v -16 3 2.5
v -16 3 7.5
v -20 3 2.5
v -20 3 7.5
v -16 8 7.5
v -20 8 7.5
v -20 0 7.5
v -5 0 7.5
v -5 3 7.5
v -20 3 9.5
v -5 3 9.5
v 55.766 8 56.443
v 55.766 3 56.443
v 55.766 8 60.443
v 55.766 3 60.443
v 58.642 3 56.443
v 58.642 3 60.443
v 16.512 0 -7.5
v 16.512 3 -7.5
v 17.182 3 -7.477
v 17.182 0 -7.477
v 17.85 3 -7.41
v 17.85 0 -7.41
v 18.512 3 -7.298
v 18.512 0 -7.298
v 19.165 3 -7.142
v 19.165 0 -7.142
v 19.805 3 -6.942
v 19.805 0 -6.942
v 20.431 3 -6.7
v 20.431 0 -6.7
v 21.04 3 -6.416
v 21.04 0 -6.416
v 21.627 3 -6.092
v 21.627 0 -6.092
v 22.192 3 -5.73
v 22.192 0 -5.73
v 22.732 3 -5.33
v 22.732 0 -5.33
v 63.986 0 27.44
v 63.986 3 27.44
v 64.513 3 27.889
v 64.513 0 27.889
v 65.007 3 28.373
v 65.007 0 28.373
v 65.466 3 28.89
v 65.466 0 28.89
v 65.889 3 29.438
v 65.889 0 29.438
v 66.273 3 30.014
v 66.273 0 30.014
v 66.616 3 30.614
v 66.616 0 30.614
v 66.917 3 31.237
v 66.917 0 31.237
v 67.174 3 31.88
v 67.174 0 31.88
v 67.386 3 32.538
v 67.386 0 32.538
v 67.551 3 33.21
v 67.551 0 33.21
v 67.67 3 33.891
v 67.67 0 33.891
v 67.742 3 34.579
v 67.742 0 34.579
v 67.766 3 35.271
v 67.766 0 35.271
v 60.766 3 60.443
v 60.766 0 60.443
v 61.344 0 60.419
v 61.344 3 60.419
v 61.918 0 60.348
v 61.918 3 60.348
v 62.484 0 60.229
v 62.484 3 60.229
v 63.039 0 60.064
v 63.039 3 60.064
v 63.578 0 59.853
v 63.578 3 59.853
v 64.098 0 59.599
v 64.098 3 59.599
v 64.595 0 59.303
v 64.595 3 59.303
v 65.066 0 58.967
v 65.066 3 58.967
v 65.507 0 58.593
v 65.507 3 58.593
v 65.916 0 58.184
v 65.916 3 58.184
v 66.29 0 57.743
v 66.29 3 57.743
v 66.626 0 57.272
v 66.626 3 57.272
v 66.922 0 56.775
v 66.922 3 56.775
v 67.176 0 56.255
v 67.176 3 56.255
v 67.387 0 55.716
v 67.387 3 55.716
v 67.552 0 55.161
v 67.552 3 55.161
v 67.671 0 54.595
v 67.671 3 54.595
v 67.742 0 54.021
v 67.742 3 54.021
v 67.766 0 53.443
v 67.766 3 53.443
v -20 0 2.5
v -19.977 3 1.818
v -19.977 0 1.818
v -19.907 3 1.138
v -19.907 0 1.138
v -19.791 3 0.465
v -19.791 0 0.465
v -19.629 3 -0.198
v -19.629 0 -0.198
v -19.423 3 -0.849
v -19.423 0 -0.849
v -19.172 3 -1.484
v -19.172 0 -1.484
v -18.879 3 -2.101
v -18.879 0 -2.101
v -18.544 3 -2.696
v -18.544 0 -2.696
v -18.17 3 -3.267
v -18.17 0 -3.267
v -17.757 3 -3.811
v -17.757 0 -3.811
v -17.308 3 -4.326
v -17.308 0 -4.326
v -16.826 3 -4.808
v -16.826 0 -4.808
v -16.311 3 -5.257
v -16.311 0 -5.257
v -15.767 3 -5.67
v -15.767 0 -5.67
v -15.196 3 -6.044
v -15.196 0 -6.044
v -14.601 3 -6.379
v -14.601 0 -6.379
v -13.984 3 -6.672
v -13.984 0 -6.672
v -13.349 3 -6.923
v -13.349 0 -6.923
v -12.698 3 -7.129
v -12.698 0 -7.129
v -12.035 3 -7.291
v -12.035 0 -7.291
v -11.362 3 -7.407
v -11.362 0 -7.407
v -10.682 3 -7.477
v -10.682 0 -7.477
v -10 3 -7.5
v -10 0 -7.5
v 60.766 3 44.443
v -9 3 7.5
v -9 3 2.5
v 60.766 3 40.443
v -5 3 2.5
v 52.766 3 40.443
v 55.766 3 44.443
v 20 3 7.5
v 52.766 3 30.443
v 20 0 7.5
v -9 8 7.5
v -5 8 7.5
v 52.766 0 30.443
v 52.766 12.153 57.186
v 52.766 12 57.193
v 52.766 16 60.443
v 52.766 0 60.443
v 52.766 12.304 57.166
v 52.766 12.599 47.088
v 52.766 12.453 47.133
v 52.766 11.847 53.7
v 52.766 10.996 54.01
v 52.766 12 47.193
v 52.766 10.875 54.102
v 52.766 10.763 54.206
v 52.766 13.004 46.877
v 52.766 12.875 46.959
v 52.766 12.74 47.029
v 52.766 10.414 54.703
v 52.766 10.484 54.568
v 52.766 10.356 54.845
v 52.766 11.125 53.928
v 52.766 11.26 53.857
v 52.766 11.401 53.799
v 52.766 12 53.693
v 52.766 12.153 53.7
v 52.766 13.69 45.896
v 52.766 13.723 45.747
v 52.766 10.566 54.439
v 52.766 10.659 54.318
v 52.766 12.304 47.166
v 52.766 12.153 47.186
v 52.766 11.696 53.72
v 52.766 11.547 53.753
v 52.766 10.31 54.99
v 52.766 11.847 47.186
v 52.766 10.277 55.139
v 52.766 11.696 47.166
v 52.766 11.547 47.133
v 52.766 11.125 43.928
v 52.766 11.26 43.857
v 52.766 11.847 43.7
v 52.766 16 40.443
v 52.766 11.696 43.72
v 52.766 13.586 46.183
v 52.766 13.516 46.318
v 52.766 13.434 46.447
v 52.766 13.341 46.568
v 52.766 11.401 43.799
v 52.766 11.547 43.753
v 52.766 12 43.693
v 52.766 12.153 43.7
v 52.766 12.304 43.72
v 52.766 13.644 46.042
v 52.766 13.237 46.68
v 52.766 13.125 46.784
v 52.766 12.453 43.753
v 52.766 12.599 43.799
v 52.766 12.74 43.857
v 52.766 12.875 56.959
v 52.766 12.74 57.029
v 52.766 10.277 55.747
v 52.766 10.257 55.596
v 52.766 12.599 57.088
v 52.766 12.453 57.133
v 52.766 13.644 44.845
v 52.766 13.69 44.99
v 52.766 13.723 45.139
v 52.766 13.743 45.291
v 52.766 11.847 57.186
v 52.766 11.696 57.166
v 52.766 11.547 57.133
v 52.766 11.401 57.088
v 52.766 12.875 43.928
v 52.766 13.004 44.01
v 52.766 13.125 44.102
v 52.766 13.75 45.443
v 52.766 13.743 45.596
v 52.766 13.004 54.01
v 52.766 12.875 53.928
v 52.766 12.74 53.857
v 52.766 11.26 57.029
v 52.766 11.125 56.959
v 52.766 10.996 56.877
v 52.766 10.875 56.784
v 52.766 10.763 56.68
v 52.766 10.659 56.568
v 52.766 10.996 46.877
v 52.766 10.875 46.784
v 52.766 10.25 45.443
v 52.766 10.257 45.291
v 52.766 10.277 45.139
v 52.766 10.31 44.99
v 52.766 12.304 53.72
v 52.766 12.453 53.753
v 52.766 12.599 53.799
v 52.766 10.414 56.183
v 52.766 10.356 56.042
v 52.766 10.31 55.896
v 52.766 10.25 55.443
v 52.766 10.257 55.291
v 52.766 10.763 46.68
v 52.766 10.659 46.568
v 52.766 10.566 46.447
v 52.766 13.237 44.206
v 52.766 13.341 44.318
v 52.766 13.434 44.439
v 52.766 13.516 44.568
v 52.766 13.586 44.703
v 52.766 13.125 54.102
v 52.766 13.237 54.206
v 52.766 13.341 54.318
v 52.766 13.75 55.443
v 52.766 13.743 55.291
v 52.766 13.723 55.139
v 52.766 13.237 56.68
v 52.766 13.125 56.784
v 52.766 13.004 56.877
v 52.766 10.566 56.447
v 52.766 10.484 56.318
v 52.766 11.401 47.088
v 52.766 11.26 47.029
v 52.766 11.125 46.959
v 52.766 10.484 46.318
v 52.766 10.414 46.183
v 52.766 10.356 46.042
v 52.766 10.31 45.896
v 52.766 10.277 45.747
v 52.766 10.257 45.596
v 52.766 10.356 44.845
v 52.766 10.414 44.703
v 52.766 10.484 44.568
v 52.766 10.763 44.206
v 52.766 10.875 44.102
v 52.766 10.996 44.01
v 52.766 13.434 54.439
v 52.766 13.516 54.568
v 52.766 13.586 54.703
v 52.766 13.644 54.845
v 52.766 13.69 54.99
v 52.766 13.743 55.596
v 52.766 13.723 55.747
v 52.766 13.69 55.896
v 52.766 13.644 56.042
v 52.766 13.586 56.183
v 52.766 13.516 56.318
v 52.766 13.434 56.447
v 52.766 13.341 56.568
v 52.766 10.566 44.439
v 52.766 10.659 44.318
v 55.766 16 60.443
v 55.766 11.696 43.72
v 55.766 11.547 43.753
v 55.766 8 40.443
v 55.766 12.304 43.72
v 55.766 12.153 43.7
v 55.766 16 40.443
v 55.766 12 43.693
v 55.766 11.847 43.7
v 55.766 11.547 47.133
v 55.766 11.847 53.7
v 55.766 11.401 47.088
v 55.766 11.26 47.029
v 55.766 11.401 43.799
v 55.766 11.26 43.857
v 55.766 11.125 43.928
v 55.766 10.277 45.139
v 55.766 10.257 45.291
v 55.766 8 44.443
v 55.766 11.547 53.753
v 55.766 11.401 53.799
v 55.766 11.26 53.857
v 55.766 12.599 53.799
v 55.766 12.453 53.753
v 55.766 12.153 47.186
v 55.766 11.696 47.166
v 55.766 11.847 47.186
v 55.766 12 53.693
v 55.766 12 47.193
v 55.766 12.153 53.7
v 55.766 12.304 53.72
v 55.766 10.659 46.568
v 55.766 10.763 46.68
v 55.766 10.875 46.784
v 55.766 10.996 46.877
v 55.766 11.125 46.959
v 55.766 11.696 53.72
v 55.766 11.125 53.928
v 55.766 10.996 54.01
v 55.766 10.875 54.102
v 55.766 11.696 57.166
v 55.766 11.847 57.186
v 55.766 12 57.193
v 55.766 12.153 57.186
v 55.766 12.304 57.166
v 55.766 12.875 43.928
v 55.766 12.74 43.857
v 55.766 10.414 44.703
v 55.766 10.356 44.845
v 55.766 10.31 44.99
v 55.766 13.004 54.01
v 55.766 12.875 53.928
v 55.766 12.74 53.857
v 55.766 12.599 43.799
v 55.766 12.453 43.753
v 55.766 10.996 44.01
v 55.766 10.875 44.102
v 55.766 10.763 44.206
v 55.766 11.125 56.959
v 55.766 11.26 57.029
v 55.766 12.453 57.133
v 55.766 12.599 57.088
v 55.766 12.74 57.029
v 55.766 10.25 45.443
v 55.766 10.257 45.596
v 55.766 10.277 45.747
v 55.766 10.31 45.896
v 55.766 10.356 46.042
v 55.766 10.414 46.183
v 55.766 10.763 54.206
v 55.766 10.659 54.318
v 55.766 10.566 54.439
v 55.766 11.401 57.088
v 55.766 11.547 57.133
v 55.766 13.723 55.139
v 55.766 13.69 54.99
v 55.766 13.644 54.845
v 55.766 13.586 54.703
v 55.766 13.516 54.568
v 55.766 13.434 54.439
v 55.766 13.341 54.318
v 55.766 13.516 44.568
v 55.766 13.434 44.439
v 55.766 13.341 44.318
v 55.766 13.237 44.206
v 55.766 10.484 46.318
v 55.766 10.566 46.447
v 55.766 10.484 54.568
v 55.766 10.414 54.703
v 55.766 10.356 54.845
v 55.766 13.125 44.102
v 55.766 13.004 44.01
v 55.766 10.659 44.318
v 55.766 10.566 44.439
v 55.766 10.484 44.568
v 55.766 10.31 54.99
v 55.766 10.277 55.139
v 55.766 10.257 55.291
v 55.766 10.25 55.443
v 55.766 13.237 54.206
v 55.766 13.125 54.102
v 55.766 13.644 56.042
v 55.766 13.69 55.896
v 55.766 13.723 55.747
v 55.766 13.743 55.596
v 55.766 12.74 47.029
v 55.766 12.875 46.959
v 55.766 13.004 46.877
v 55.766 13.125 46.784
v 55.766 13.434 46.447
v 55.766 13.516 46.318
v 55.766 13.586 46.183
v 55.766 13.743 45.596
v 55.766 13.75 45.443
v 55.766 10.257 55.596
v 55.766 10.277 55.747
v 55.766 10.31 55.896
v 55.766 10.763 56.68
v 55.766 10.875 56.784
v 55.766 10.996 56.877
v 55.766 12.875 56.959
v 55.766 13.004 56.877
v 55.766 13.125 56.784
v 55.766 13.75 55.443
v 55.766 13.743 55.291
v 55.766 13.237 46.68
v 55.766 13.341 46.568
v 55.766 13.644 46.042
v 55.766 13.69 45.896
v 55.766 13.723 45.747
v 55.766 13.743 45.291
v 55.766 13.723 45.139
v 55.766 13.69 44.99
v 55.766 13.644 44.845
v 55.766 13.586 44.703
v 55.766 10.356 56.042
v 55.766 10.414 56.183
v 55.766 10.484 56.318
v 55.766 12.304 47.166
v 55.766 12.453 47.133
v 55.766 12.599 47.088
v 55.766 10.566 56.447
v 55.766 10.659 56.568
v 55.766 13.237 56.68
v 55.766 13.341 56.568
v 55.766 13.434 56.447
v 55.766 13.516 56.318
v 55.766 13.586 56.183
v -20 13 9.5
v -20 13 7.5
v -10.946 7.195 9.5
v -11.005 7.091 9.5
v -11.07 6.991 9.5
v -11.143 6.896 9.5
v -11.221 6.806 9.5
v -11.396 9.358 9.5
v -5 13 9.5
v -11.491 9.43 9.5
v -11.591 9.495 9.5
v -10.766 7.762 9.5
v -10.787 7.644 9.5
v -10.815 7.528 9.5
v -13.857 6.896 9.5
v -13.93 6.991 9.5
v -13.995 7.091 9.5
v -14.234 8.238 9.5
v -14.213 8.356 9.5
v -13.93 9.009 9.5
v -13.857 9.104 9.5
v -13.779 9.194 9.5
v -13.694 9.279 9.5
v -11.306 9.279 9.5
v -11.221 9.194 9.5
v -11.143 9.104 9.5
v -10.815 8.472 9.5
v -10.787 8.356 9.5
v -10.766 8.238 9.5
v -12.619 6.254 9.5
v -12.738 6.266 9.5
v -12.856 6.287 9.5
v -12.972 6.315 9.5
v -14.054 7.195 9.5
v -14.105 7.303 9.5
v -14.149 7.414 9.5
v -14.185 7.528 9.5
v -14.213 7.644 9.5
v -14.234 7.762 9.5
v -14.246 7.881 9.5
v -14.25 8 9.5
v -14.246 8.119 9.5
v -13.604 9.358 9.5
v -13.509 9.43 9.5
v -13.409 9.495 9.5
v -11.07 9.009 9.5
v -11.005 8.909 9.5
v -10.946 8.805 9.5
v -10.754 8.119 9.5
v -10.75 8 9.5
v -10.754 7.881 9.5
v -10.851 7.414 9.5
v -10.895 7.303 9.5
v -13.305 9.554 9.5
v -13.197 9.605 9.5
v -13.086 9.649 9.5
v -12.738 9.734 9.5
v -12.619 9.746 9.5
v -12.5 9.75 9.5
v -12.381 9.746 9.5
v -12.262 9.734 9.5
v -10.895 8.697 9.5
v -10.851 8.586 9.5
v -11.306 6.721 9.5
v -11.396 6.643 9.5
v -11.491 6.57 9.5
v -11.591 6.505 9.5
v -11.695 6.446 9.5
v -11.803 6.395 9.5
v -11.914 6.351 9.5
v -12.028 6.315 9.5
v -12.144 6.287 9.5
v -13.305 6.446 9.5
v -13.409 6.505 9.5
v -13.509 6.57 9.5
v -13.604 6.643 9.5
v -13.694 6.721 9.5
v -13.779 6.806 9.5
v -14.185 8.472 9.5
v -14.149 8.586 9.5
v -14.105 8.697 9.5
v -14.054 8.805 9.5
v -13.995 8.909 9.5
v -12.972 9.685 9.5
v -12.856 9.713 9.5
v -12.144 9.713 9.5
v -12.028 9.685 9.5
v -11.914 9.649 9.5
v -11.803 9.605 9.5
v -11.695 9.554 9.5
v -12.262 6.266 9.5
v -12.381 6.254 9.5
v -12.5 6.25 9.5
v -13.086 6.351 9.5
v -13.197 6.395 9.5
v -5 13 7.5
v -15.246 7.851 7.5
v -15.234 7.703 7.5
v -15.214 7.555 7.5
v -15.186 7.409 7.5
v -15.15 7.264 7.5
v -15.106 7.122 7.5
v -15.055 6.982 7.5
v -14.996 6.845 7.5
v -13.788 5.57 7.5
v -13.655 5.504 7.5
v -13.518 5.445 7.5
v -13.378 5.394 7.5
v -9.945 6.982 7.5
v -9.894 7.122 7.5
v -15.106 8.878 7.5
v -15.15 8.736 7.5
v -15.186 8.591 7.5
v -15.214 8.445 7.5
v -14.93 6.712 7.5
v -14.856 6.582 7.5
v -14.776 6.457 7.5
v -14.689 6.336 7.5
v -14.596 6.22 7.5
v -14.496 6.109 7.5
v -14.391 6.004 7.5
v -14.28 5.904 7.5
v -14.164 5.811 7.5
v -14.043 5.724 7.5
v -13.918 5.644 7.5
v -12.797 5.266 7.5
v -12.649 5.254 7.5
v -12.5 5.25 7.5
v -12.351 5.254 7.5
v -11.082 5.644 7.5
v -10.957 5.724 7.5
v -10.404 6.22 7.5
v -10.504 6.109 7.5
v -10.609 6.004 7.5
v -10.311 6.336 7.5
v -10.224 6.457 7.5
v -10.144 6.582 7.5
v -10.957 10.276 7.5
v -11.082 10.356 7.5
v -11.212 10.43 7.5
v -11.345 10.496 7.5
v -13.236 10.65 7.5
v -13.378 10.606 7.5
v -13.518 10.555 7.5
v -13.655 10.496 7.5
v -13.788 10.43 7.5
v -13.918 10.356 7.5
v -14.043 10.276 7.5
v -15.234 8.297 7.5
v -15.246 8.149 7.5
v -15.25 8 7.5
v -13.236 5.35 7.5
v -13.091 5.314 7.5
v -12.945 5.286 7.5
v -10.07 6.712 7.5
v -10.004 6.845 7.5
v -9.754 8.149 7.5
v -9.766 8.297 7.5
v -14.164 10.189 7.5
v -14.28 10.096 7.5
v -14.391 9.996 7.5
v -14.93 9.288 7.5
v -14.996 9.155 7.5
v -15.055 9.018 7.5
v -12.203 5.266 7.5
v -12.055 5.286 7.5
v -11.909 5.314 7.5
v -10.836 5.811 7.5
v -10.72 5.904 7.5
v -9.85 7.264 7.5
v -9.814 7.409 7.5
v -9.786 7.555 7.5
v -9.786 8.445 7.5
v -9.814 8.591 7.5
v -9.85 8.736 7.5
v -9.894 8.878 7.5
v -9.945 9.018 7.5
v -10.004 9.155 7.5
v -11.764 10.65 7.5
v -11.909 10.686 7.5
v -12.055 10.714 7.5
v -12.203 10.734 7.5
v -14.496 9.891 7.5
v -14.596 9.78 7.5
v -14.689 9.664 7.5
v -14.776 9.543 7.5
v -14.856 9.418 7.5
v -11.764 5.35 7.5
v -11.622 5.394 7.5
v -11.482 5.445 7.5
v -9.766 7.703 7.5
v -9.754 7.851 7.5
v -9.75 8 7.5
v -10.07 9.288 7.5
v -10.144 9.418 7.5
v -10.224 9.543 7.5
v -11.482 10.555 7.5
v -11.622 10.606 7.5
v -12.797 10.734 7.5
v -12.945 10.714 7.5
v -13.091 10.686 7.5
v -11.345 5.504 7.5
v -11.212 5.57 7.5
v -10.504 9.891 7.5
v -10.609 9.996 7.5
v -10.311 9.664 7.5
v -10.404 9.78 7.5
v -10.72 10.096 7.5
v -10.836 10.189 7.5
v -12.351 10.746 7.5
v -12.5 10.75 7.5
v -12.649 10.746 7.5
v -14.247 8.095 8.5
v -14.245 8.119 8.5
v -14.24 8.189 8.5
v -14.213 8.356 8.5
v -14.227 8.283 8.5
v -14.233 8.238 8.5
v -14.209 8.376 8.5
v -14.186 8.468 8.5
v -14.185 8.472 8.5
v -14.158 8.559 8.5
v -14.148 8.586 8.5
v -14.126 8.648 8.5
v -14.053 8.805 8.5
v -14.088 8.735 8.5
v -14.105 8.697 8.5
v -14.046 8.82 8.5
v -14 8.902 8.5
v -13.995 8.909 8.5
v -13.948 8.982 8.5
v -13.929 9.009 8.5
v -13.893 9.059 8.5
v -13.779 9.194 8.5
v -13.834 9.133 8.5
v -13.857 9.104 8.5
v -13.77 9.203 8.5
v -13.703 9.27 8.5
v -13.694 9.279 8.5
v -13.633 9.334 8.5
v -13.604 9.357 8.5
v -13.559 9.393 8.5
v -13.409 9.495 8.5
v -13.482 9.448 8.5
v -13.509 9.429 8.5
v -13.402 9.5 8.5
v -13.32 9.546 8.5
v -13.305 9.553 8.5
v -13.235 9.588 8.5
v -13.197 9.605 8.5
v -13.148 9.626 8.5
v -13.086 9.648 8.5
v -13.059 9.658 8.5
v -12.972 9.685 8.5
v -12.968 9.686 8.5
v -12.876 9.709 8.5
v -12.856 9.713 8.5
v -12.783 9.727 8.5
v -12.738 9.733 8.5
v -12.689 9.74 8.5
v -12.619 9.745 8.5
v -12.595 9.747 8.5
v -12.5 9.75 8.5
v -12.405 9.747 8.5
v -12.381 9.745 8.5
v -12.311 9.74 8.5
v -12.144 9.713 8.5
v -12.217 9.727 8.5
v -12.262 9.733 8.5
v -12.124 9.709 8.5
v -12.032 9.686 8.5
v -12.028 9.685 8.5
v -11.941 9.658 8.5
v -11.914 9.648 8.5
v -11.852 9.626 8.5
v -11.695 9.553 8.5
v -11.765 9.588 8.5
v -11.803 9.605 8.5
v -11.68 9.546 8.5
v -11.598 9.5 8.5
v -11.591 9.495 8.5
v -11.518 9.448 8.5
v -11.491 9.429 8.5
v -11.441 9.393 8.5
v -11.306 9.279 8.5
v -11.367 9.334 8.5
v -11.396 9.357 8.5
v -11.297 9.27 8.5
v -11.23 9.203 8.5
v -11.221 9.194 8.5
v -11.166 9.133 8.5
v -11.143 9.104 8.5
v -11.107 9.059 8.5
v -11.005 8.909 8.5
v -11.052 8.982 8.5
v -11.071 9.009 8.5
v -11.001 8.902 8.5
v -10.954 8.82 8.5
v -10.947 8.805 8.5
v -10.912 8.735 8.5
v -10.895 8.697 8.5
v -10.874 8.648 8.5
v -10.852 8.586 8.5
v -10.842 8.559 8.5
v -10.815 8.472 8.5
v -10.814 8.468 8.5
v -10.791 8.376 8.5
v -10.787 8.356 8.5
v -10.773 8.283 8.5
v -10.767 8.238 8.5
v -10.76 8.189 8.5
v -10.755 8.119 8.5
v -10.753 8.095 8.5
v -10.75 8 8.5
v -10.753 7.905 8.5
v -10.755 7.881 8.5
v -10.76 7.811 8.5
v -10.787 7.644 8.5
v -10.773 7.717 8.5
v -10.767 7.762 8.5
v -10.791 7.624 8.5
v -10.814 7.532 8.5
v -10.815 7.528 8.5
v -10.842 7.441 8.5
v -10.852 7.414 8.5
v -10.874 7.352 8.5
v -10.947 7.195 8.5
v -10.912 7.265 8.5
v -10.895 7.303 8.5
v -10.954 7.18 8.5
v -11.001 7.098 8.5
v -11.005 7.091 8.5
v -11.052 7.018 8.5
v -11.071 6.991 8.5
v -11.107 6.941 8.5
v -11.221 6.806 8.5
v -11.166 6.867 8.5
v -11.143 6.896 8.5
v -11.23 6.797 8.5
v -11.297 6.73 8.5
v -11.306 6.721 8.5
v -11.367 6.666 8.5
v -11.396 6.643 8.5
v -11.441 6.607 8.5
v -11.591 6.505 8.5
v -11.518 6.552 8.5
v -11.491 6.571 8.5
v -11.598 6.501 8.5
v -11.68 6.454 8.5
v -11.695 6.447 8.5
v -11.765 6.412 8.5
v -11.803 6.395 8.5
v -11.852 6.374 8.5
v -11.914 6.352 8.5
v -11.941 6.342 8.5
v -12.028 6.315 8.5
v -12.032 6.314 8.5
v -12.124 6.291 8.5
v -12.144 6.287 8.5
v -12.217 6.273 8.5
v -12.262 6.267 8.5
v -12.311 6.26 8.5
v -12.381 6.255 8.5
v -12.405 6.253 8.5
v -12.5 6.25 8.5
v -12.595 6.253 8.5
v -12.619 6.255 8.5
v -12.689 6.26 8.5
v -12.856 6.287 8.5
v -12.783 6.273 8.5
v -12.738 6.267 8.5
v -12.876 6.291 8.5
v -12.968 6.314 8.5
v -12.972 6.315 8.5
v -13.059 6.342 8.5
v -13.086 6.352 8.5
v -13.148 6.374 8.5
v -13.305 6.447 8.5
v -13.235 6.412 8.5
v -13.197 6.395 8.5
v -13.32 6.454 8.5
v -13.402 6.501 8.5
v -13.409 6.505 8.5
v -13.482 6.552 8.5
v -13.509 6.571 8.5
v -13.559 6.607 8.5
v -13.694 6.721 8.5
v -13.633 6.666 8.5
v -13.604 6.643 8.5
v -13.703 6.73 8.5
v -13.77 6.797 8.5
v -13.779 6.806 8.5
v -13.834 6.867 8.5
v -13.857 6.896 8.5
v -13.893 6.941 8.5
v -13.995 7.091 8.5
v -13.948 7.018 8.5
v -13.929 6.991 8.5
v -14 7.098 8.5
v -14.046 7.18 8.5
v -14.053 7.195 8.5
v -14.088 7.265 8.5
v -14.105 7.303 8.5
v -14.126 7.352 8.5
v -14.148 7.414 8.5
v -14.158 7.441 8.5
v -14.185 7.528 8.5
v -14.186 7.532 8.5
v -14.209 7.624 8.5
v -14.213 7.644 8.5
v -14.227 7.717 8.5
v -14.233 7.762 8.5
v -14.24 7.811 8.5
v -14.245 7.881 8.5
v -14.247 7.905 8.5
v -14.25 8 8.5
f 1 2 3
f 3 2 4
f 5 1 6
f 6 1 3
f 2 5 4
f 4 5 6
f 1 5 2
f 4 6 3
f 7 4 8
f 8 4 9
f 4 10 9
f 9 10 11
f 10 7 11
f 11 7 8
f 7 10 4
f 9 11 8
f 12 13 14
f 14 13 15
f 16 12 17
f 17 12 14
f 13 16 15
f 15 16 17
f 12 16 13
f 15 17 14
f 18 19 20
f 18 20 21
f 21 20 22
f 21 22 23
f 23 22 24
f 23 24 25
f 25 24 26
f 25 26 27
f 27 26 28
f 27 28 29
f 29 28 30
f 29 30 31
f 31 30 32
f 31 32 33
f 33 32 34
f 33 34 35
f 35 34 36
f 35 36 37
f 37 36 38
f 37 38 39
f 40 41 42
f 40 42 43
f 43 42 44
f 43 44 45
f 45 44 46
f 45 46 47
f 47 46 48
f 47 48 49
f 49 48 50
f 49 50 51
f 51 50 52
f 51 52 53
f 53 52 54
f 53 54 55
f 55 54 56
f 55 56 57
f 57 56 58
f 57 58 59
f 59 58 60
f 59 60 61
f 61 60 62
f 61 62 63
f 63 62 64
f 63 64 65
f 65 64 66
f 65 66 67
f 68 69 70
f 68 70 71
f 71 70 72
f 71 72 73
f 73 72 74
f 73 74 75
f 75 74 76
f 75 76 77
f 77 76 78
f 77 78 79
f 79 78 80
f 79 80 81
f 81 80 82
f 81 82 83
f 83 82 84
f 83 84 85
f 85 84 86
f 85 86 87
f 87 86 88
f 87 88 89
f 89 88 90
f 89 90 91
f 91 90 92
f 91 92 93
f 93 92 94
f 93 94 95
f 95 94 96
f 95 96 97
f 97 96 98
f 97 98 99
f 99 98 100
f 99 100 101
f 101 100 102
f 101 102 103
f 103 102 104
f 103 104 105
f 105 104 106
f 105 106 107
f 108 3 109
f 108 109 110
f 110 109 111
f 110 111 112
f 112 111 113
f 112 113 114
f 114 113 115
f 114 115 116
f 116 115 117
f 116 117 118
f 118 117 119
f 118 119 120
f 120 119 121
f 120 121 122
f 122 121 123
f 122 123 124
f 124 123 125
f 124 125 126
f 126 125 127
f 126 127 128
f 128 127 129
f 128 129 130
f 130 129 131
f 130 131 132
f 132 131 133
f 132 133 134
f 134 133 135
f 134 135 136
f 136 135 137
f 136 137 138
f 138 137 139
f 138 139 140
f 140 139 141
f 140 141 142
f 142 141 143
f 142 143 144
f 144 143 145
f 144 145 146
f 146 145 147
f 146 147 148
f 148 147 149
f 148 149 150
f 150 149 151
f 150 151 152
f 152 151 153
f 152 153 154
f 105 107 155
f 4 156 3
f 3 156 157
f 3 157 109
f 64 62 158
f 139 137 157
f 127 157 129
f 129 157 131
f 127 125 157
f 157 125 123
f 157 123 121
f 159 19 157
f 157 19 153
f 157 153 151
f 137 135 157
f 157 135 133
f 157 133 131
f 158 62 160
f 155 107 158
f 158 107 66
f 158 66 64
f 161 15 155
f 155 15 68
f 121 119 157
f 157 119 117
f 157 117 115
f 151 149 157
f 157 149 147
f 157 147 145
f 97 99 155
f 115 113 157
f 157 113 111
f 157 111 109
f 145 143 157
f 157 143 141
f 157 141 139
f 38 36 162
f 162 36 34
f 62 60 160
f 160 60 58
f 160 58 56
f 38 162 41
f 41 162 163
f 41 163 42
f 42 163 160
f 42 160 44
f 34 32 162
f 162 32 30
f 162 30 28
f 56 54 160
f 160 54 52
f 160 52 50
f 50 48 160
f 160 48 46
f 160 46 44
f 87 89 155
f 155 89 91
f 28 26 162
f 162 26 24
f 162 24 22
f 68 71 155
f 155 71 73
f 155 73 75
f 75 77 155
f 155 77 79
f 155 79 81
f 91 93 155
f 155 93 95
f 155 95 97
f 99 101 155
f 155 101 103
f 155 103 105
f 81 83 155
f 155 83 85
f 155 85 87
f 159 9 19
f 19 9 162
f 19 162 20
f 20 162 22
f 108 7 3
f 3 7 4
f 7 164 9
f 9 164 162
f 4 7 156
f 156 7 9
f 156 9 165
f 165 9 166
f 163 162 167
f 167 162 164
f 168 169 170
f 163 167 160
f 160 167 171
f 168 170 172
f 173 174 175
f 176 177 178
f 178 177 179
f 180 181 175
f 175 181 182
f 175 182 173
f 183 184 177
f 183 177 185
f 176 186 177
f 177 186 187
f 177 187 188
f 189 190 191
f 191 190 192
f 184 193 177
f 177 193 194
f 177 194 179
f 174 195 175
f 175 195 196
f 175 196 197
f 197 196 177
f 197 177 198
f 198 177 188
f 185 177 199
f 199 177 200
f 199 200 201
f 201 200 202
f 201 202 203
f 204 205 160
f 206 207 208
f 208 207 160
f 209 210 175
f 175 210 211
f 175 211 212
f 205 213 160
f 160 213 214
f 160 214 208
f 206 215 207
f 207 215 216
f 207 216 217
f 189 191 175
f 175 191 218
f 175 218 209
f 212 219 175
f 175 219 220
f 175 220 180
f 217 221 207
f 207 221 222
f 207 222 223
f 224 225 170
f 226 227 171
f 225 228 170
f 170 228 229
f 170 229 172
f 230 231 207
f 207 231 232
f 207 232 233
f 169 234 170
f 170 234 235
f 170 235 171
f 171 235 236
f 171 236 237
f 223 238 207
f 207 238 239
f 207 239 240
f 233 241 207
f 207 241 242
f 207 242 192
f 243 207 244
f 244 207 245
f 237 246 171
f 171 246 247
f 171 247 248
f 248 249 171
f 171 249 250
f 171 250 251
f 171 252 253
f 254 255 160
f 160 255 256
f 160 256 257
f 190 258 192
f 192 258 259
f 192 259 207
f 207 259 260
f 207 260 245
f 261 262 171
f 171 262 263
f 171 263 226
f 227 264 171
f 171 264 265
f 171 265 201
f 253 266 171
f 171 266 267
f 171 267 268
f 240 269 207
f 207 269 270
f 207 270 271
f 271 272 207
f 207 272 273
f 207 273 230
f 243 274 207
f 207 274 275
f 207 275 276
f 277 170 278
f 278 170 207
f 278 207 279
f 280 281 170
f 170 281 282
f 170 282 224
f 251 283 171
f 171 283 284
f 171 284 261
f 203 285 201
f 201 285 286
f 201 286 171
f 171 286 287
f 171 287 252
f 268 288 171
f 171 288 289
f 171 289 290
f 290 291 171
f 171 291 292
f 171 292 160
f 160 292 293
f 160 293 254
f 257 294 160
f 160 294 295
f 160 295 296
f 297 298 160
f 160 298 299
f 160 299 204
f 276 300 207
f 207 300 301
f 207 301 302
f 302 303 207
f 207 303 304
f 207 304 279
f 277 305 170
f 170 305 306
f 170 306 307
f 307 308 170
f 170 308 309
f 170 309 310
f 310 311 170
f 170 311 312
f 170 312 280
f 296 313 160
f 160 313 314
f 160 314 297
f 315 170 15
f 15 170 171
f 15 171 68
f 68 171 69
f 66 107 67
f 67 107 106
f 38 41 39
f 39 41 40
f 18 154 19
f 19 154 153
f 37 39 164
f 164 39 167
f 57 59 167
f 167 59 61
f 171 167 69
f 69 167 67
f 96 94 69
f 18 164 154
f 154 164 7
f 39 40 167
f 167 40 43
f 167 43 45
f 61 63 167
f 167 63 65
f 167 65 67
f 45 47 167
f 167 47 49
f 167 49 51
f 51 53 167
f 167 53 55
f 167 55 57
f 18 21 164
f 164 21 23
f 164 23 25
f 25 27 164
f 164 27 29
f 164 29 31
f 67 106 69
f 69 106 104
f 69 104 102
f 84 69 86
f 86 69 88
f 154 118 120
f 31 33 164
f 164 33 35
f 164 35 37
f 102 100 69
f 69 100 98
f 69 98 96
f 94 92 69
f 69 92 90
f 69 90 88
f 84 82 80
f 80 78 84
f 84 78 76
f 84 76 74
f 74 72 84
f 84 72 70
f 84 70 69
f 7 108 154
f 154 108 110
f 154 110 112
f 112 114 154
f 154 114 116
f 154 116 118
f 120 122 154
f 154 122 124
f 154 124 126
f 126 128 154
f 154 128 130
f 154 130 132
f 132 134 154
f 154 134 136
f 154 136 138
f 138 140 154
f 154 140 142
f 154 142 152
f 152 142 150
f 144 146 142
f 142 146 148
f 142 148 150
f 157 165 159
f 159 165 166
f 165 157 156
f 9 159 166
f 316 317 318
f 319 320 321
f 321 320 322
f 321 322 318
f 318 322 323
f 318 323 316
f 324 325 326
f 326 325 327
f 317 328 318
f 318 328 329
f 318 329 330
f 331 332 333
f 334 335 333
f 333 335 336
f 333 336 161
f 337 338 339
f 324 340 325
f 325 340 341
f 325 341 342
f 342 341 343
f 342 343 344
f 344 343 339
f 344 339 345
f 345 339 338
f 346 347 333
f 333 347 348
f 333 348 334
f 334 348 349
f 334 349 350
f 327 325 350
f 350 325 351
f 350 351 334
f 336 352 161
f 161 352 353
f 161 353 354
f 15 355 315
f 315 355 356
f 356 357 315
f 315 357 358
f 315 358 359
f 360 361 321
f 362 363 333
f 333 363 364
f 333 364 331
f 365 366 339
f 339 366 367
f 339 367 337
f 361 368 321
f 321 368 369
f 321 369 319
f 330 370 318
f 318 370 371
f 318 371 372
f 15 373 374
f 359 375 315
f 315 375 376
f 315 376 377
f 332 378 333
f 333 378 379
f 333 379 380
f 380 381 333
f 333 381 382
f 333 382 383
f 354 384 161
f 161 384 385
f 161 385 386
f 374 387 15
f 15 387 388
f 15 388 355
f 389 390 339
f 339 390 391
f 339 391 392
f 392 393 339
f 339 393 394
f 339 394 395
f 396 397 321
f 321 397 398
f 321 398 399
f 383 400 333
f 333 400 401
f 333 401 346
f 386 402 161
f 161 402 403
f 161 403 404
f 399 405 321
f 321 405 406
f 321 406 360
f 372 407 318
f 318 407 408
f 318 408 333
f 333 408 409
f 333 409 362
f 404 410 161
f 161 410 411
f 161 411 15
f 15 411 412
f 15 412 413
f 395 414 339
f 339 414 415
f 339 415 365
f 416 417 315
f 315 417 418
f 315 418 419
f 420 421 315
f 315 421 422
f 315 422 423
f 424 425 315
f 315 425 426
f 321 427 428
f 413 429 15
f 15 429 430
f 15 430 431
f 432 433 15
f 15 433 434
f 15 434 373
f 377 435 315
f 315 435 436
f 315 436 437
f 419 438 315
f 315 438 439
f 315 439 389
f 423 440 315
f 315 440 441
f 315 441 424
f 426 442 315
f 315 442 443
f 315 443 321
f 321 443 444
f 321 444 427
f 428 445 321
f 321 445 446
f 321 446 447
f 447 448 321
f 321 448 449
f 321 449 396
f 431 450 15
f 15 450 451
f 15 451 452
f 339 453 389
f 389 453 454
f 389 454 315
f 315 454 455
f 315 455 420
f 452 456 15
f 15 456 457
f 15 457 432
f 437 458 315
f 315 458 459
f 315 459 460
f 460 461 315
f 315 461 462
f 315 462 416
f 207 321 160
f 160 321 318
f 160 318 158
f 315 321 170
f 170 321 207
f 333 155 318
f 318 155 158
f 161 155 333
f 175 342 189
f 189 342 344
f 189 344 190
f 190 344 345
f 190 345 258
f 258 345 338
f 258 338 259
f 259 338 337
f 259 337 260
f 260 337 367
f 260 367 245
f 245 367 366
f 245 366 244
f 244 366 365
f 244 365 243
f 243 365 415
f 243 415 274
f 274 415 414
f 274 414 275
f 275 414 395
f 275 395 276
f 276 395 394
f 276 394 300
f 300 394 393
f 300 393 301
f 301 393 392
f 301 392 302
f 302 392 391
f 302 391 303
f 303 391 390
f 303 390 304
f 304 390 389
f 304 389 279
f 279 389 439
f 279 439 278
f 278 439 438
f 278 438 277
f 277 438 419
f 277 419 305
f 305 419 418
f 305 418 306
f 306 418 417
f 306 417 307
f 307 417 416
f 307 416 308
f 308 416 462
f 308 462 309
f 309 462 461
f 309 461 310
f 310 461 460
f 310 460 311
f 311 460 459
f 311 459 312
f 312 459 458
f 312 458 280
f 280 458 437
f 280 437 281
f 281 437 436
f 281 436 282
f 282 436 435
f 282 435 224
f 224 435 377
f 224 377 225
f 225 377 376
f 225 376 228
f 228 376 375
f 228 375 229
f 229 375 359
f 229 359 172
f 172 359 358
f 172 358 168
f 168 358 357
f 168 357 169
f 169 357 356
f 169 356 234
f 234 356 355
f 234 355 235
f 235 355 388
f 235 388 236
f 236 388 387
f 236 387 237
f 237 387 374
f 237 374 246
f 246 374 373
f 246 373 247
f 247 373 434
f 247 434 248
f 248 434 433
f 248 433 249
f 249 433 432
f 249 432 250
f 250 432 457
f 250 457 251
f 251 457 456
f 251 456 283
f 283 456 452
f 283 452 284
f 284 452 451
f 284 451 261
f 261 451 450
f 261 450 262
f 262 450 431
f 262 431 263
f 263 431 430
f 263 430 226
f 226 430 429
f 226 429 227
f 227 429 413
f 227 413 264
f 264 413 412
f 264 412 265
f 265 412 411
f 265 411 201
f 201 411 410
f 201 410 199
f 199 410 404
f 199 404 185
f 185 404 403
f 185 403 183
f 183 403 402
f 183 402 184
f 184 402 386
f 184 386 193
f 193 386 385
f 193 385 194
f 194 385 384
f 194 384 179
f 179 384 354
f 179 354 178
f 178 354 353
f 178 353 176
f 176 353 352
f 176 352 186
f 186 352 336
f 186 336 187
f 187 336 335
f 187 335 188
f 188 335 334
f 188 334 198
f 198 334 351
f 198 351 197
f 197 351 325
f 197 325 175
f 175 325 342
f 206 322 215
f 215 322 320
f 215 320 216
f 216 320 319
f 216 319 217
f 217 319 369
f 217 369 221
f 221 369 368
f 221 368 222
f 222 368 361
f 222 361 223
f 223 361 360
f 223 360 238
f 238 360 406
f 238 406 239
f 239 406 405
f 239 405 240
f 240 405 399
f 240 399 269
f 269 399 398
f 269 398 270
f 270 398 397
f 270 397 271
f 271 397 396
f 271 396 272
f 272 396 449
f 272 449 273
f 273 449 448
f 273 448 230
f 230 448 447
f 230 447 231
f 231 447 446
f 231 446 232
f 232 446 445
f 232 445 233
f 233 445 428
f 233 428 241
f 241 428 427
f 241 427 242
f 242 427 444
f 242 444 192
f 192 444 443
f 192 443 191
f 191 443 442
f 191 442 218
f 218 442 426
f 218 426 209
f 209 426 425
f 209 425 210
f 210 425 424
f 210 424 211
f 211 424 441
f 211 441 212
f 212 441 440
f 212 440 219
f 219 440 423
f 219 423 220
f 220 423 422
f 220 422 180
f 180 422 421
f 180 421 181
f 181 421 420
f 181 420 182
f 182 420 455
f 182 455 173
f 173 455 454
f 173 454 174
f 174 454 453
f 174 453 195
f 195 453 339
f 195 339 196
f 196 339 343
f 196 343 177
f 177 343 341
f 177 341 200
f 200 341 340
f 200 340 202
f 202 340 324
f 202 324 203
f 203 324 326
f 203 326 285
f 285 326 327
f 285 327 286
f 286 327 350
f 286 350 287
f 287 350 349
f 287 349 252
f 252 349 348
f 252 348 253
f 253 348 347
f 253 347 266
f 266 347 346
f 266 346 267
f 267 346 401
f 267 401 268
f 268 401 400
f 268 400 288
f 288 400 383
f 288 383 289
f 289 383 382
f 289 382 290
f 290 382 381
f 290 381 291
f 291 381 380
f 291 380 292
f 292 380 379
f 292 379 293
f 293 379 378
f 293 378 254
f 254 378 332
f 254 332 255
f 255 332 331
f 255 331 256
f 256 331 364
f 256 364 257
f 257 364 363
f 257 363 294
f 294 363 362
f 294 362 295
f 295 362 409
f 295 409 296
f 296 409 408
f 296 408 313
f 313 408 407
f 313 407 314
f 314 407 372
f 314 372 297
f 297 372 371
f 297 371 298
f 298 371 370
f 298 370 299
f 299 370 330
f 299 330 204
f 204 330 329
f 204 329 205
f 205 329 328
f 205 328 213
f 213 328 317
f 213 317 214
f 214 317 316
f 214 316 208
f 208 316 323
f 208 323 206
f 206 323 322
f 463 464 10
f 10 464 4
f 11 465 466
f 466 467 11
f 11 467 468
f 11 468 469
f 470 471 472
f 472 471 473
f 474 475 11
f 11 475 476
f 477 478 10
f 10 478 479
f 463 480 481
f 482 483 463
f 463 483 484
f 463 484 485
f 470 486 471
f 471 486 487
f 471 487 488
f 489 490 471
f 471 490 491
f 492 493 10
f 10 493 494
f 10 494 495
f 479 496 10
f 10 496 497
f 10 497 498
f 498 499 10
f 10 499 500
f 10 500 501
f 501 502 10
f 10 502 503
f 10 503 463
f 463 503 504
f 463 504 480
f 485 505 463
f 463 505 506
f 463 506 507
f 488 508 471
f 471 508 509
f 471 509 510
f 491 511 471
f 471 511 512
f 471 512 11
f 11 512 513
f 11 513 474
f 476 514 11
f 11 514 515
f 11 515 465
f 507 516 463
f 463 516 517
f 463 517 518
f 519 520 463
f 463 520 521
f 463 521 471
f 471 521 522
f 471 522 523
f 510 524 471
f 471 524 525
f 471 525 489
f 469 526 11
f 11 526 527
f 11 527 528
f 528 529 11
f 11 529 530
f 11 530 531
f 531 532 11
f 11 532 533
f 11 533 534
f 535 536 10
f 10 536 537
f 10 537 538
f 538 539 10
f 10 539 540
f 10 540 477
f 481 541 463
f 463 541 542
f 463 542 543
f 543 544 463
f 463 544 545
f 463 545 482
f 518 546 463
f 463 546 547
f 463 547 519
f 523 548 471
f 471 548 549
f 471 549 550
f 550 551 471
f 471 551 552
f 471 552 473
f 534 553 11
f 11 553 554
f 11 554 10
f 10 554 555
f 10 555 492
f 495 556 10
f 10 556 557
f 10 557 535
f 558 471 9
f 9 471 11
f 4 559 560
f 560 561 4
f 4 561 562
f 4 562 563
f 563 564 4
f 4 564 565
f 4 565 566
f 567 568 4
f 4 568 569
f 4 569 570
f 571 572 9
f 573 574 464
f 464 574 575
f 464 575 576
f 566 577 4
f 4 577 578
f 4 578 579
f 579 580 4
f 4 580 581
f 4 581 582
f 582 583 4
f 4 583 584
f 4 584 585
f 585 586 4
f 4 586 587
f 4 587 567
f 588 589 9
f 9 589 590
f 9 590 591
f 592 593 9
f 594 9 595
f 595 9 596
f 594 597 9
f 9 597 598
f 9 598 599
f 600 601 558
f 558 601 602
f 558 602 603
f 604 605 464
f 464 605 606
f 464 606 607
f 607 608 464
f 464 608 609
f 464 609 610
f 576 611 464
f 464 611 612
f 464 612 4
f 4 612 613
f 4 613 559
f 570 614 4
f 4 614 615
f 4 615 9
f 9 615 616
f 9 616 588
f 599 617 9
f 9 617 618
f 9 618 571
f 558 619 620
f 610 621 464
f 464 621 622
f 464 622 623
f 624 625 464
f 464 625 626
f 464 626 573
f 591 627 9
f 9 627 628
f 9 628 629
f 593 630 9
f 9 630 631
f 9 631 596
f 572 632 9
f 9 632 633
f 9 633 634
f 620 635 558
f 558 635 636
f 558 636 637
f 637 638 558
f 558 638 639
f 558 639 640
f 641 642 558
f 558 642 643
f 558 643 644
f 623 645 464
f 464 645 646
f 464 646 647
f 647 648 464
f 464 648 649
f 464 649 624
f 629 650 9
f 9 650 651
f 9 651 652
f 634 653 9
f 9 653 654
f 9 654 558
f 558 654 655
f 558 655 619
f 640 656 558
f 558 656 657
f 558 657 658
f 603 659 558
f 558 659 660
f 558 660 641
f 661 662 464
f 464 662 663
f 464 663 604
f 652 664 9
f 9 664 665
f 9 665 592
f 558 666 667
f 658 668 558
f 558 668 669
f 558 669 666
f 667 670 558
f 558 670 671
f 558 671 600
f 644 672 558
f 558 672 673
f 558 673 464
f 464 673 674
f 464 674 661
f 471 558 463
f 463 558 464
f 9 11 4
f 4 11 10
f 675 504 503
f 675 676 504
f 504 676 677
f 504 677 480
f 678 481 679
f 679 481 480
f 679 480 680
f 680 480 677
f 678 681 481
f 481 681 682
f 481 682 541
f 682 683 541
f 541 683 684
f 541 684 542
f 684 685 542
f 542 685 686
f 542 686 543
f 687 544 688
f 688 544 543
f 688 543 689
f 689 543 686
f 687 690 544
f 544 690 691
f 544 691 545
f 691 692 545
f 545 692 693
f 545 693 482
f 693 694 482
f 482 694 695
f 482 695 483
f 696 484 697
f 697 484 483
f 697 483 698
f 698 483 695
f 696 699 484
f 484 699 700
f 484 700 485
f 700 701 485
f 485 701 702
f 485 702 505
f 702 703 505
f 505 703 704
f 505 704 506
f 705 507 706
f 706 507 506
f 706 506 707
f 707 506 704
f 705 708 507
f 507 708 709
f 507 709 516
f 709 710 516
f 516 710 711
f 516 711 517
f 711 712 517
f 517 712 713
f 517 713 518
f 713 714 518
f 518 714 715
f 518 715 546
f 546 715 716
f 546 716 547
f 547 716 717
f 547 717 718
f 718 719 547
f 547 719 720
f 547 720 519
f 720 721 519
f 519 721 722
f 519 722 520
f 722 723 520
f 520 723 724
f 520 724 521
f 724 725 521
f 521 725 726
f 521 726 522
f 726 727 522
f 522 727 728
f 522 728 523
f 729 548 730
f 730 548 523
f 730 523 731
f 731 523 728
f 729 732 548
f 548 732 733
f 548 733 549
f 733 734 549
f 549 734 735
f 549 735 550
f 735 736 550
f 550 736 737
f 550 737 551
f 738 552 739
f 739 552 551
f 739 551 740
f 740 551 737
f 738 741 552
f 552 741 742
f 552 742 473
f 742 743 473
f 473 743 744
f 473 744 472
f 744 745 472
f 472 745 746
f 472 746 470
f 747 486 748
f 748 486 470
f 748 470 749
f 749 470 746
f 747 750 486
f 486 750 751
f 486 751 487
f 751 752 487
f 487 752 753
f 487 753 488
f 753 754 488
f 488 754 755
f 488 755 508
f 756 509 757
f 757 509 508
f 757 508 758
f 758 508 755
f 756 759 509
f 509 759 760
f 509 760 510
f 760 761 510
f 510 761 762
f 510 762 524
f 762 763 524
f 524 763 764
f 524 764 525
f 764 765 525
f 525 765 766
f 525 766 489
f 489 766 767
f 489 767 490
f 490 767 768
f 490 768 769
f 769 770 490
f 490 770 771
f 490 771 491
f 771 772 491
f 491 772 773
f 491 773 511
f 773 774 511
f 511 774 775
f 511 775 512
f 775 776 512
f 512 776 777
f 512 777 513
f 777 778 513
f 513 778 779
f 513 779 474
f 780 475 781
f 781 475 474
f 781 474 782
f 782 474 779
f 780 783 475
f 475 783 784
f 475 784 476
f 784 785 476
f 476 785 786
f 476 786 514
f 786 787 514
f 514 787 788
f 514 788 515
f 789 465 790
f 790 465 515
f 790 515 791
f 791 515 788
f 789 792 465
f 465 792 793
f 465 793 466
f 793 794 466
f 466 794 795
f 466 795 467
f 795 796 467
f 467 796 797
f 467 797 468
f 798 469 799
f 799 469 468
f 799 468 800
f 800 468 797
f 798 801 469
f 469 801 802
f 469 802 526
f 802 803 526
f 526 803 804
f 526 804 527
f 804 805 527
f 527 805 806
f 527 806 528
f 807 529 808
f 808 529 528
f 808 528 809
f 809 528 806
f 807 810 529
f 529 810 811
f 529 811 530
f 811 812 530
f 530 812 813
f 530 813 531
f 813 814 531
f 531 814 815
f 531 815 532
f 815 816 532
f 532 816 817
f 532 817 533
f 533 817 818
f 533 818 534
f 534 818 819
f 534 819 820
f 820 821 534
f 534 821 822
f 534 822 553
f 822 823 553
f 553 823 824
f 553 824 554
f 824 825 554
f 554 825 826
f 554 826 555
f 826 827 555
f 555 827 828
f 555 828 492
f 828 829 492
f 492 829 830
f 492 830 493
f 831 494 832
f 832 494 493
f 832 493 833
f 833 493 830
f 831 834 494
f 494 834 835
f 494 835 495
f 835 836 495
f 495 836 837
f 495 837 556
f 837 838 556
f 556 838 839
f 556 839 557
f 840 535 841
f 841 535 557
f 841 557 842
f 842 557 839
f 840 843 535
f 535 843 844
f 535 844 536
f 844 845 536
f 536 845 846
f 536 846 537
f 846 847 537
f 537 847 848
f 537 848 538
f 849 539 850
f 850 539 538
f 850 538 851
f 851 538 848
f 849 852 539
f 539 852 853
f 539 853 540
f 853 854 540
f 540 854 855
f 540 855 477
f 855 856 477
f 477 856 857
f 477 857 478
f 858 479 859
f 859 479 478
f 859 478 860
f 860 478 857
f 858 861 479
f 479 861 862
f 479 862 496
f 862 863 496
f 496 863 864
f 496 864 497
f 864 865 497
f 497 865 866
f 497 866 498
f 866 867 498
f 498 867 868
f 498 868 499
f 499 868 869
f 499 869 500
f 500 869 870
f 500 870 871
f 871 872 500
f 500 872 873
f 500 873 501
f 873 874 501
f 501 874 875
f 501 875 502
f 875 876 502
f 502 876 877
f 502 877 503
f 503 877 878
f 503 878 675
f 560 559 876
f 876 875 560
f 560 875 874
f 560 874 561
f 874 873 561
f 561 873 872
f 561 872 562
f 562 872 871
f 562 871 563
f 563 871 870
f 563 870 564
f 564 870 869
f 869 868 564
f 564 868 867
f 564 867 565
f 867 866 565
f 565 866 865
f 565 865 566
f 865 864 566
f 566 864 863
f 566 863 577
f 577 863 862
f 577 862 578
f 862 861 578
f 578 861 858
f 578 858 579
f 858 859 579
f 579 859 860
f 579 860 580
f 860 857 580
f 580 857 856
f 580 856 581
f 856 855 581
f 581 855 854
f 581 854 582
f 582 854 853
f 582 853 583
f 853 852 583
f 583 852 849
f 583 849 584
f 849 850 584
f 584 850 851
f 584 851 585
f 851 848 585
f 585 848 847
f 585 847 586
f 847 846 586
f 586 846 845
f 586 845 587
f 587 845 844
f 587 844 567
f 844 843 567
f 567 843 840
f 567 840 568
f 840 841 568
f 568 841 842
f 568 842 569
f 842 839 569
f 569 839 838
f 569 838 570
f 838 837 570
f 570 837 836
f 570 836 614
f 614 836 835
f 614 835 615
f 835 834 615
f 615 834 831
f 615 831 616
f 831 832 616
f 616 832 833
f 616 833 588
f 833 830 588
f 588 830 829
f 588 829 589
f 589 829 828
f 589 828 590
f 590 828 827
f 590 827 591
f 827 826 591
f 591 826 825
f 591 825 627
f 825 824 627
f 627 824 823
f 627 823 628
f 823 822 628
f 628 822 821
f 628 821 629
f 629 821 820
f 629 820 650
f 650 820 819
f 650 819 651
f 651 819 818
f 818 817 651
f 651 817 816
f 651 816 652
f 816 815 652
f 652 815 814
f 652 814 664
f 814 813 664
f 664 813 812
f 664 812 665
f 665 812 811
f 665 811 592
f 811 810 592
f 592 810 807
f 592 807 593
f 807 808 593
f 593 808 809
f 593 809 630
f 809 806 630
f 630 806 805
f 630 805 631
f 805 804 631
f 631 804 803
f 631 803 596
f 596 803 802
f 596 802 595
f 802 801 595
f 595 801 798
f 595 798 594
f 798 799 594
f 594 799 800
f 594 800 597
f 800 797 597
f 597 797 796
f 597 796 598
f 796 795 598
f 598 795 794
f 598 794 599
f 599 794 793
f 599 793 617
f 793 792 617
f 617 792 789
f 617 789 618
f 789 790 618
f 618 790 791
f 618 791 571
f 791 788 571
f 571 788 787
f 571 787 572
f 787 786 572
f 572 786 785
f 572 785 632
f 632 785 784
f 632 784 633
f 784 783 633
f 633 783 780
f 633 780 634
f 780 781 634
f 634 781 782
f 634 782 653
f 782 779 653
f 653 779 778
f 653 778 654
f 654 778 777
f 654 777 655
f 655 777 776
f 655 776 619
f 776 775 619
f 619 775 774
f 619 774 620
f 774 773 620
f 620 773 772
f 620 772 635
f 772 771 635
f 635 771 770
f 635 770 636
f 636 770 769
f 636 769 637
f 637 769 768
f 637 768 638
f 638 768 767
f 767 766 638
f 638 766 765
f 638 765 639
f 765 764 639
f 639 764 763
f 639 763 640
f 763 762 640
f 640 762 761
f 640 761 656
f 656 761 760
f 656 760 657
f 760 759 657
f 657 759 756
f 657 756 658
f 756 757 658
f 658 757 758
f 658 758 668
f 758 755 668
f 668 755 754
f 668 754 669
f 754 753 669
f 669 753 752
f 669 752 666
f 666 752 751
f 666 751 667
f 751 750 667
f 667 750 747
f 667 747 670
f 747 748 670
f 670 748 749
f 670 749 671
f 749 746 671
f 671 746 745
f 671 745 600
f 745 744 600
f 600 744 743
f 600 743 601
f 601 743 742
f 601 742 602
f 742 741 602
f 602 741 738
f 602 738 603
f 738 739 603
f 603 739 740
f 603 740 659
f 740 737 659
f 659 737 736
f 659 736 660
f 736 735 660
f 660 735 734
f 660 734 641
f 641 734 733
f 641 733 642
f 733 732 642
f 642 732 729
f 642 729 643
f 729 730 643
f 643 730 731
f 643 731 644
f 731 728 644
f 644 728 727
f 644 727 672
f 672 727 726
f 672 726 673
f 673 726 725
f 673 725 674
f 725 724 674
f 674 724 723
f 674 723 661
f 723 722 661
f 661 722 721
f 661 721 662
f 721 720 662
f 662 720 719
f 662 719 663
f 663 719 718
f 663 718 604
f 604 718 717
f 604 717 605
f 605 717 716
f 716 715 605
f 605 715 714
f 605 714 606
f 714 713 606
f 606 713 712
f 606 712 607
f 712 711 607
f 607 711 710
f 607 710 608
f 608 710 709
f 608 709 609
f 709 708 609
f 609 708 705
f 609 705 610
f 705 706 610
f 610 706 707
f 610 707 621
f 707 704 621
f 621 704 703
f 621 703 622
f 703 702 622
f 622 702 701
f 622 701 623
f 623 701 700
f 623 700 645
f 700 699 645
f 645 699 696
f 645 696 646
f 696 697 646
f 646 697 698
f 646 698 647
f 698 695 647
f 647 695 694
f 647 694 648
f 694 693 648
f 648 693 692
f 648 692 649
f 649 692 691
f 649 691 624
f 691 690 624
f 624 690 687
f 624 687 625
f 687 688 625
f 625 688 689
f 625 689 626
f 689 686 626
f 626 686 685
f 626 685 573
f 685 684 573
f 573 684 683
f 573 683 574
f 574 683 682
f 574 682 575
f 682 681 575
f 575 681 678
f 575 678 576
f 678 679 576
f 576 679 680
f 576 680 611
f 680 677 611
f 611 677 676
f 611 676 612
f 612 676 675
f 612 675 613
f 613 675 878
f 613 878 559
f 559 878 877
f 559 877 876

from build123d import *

# Parameters (mm, degrees)
BASE_EXT_DEPTH            = 3
MOUNTING_PLATE_W          = 15
MOUNTING_PLATE_H          = 2
LED_BOX_PLATE_EXT_DEPTH   = 10
BOSS_EXTRUDE6_DEPTH       = 4
BOSS_EXTRUDE9_DEPTH       = 4
BOSS_EXTRUDE11_DEPTH      = 15
M3_SCREW_R                = 1.75
CUT_EXTRUDE3_DEPTH        = 87.972462143
SKETCH13_W                = 3
SKETCH13_H                = 20
MOUNT_PLATE_BOX_EXT_DEPTH = 13
BOSS_EXTRUDE12_DEPTH      = 4
BOSS_EXTRUDE15_DEPTH      = 4
M3_SCREWS_R               = 1.75
M3_SCREW_CUT_DEPTH        = 8
FILLET1_R                 = 10
FILLET2_R                 = 7
FILLET3_R                 = 10
FILLET4_R                 = 10


with BuildPart() as part:
    # Base → Base EXT (new body)
    with BuildSketch(Plane(origin=(0, 0, 0), x_dir=(1, 0, 0), z_dir=(0, 1, 0))):
        Polygon((20, 7.5), (67.766081772, -30.443057454), (67.766081772, -60.443057454), (52.766081772, -60.443057454), (52.766081772, -30.443057454), (20, -7.5), (-20, -7.5), (-20, 7.5), align=None)
    extrude(amount=BASE_EXT_DEPTH)

    # Sketch17 → Boss-Extrude9 (add)
    with BuildSketch(Plane(origin=(-5, 0, 0), x_dir=(0, 0, -1), z_dir=(1, 0, 0))):
        Polygon((-7.5, 8), (-2.5, 3), (-7.5, 3), align=None)
    extrude(amount=-BOSS_EXTRUDE9_DEPTH)

    # Sketch13 → Mount Plate BOX EXT (add)
    with BuildSketch(Plane(origin=(0, 3, 0), x_dir=(1, 0, 0), z_dir=(0, 1, 0))):
        with Locations((54.266081772, -50.443057454)):
            Rectangle(SKETCH13_W, SKETCH13_H)
    extrude(amount=MOUNT_PLATE_BOX_EXT_DEPTH)

    # Sketch21 → Boss-Extrude15 (add)
    with BuildSketch(Plane(origin=(0, 0, 40.443057454), x_dir=(-1, 0, 0), z_dir=(0, 0, -1))):
        Polygon((-55.766081772, 8), (-60.766081772, 3), (-55.766081772, 3), align=None)
    extrude(amount=-BOSS_EXTRUDE15_DEPTH)

    # M3 Screws → M3 Screw Cut (cut)
    with BuildSketch(Plane(origin=(55.766081772, 0, 0), x_dir=(0, 0, -1), z_dir=(1, 0, 0))):
        with Locations((-55.443057454, 12)):
            Circle(M3_SCREWS_R)
        with Locations((-45.443057454, 12)):
            Circle(M3_SCREWS_R)
    extrude(amount=-M3_SCREW_CUT_DEPTH, mode=Mode.SUBTRACT)

    # Fillet1
    fillet1_edges = [part.edges().sort_by_distance(p)[0] for p in [
        (-20, 1.5, -7.5),
    ]]
    fillet(fillet1_edges, radius=FILLET1_R)

    # Fillet2
    fillet2_edges = [part.edges().sort_by_distance(p)[0] for p in [
        (67.766081772, 1.5, 60.443057454),
    ]]
    fillet(fillet2_edges, radius=FILLET2_R)

    # Fillet3
    fillet3_edges = [part.edges().sort_by_distance(p)[0] for p in [
        (67.766081772, 1.5, 30.443057454),
    ]]
    fillet(fillet3_edges, radius=FILLET3_R)

    # Fillet4
    fillet4_edges = [part.edges().sort_by_distance(p)[0] for p in [
        (20, 1.5, -7.5),
    ]]
    fillet(fillet4_edges, radius=FILLET4_R)


with BuildPart() as body_2:
    # Mounting Plate → LED Box Plate EXT (new body)
    with BuildSketch(Plane(origin=(0, 3, 0), x_dir=(1, 0, 0), z_dir=(0, 1, 0))):
        with Locations((-12.5, -8.5)):
            Rectangle(MOUNTING_PLATE_W, MOUNTING_PLATE_H)
    extrude(amount=LED_BOX_PLATE_EXT_DEPTH)

    # M3 Screw → Cut-Extrude3 (cut, through all)
    with BuildSketch(Plane(origin=(0, 0, 7.5), x_dir=(-1, 0, 0), z_dir=(0, 0, -1))):
        with Locations((12.5, 8)):
            Circle(M3_SCREW_R)
    extrude(amount=-CUT_EXTRUDE3_DEPTH, mode=Mode.SUBTRACT)

    # Cut-Extrude4 cone 1 section (through the dimple's axis) → Cut-Extrude4 (revolve, cut)
    with BuildSketch(Plane(origin=(-12.5, 8, 7.5), x_dir=(0, 1, 0), z_dir=(1, 0, 0))):
        Polygon((0, 0), (2.75, 0), (0, 2.75), align=None)
    revolve(axis=Axis((-12.5, 8, 7.5), (0, 0, 1)), mode=Mode.SUBTRACT)


with BuildPart() as body_3:
    # Sketch16 → Boss-Extrude6 (new body)
    with BuildSketch(Plane.ZY.offset(20)):
        Polygon((2.5, 3), (7.5, 8), (7.5, 3), align=None)
    extrude(amount=-BOSS_EXTRUDE6_DEPTH)


with BuildPart() as body_4:
    # Sketch18 → Boss-Extrude11 (new body)
    with BuildSketch(Plane.ZY.offset(20)):
        Polygon((7.5, 0), (9.5, 3), (7.5, 3), align=None)
    extrude(amount=-BOSS_EXTRUDE11_DEPTH)


with BuildPart() as body_5:
    # Sketch20 → Boss-Extrude12 (new body)
    with BuildSketch(Plane.XY.offset(60.443057454)):
        Polygon((55.766081772, 8), (58.641777725, 3), (55.766081772, 3), align=None)
    extrude(amount=-BOSS_EXTRUDE12_DEPTH)


solid = Compound([part.part, body_2.part, body_3.part, body_4.part, body_5.part])
